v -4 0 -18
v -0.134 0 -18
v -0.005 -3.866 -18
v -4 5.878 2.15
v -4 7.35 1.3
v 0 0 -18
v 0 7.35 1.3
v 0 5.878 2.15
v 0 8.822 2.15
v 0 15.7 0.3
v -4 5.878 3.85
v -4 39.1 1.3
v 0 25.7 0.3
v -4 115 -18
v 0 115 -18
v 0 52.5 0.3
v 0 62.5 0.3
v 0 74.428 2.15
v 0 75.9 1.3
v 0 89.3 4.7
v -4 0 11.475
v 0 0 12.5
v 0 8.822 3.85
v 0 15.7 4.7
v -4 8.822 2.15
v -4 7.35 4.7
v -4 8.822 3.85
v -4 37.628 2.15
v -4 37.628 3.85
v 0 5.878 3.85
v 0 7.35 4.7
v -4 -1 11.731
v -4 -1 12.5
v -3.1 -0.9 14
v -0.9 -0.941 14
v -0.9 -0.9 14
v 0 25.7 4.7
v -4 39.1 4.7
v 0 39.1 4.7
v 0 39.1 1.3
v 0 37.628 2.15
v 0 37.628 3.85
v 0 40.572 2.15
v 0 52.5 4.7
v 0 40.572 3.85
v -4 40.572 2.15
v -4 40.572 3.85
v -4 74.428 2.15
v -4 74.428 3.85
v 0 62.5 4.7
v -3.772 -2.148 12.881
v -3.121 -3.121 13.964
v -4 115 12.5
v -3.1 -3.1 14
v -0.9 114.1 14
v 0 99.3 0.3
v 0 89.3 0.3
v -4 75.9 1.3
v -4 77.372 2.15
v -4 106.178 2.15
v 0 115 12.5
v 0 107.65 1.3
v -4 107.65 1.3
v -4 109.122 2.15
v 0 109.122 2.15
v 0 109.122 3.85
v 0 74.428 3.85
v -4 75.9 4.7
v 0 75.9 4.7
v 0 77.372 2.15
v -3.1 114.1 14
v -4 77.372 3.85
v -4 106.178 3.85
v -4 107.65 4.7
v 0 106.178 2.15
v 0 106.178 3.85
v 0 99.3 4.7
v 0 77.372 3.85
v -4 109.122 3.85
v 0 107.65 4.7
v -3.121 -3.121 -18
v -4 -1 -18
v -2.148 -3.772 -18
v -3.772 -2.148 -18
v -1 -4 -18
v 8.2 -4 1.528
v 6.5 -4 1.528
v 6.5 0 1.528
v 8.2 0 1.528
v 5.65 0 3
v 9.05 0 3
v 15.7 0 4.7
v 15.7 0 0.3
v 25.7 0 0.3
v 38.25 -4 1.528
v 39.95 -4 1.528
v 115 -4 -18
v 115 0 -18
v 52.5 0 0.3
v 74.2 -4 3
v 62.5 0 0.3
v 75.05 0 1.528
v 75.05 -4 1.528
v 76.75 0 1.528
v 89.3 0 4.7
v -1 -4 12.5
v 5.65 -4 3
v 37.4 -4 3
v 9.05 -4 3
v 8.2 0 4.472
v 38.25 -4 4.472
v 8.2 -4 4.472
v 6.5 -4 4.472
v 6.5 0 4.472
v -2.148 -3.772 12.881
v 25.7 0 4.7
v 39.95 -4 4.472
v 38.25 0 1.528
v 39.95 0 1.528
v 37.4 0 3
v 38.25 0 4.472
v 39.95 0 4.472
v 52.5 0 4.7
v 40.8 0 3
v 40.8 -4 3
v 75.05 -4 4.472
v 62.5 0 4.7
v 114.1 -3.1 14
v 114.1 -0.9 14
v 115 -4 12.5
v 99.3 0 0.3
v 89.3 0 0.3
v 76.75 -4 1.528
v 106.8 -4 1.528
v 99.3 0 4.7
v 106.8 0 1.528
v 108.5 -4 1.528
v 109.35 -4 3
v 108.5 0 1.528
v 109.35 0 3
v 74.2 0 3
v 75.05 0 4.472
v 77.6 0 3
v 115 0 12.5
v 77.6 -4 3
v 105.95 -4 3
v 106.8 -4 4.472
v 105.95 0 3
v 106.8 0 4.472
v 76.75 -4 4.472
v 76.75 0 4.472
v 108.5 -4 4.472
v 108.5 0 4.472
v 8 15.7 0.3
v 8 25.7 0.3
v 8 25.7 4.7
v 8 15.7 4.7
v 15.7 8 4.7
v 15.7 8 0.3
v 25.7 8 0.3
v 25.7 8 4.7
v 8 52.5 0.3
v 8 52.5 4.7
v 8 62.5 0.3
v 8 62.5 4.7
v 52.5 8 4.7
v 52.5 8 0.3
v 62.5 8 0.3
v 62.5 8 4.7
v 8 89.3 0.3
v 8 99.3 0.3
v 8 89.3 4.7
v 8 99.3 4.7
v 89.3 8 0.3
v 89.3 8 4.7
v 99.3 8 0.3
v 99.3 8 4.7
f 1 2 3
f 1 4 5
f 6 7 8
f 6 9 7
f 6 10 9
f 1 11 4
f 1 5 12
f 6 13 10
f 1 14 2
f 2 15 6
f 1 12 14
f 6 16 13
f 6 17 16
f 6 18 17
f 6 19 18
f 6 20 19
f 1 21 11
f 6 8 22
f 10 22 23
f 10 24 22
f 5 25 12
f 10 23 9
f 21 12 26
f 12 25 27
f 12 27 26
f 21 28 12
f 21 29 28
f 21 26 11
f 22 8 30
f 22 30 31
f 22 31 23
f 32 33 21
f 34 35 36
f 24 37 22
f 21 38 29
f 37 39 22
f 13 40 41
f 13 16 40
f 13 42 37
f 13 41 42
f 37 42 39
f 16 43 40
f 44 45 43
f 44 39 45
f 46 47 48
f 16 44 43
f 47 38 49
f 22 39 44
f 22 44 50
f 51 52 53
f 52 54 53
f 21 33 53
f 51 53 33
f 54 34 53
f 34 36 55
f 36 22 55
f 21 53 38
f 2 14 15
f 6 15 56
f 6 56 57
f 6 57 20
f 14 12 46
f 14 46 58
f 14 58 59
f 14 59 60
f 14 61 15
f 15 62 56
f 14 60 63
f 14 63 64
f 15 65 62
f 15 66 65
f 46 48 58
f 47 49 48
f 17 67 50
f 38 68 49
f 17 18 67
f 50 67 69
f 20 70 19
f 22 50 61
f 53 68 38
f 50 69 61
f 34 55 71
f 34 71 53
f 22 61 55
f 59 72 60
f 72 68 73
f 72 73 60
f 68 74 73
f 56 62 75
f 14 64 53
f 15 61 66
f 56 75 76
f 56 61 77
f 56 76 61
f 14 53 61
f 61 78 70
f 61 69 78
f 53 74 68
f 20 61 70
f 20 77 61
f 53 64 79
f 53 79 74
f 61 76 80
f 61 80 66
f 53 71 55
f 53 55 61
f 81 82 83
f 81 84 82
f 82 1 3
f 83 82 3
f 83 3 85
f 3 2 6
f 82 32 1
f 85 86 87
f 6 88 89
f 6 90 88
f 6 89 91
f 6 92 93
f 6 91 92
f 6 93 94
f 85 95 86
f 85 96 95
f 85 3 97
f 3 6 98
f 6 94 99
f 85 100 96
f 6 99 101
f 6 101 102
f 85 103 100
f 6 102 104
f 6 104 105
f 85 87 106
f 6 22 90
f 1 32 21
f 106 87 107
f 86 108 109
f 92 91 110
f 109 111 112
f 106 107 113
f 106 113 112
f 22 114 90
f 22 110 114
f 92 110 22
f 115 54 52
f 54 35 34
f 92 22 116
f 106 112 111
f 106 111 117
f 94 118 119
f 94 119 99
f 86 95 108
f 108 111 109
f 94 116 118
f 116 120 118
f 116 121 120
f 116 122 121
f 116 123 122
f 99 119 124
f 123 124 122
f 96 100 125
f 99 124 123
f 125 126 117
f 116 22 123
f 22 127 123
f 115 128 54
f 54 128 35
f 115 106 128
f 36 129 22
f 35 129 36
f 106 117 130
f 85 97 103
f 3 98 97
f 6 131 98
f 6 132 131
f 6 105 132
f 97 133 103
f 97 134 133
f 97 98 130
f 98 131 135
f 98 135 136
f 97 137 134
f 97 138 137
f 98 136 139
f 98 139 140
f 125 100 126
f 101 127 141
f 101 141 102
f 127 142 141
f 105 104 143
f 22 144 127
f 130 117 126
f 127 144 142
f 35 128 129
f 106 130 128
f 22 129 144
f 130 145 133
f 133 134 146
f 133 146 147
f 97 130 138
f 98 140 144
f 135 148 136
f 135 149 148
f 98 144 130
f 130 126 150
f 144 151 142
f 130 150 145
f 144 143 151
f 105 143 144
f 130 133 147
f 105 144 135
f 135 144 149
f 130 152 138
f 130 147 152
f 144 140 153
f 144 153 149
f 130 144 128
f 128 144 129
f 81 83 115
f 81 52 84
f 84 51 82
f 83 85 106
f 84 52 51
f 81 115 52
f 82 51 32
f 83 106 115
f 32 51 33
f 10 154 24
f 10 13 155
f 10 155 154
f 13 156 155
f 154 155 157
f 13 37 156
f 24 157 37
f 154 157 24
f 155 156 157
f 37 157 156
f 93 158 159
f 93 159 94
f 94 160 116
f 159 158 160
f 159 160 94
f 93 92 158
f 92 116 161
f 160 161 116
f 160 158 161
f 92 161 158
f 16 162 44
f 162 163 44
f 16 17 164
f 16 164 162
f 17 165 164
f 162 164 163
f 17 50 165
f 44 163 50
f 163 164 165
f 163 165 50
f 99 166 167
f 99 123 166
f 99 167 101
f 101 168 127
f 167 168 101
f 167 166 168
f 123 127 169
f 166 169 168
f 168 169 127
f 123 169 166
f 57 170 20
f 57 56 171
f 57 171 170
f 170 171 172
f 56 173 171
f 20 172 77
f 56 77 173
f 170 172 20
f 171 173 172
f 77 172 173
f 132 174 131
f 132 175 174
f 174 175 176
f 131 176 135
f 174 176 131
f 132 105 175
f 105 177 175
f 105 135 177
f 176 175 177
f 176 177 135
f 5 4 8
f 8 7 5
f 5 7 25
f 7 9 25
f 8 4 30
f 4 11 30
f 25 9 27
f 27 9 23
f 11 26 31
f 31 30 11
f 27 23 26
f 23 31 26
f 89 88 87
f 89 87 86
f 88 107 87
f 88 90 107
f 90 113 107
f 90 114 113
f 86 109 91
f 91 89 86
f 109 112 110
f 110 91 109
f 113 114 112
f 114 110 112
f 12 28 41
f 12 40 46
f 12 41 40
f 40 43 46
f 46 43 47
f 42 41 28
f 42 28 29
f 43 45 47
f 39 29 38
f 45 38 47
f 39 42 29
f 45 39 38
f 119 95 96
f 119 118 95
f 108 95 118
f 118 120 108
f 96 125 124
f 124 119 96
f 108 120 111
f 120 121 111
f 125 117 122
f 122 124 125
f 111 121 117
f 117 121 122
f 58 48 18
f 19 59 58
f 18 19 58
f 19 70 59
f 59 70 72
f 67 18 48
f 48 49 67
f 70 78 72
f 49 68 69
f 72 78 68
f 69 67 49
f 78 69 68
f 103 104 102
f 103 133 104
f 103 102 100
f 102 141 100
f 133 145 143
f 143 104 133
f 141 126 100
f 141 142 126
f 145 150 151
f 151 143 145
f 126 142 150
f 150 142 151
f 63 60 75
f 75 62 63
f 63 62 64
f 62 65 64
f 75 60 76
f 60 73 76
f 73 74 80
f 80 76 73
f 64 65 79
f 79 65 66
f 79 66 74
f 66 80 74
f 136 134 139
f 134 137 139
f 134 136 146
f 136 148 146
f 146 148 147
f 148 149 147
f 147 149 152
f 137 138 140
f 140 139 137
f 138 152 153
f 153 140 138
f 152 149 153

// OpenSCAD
// file: frame.scad
// ============================================================================
//  RIBBED FRAME HELPER — replaces a solid plate with border + grid ribs.
//  Same stiffness where it matters (bosses clamped flat), ~half the plastic.
// ============================================================================

rib_w    = 10;   // [mm] grid rib width
border_w = 10;   // [mm] perimeter border width

// Plan-view rounded rectangle prism — trims vertical edges to radius r.
// Inset polygon + offset(r) keeps the flat edges on x0/x1/y0/y1.
module rounded_outline(x0, y0, x1, y1, h, r = corner_r) {
    translate([0, 0, -0.05])
        linear_extrude(h + 0.1)
            offset(r = r)
                polygon([[x0 + r, y0 + r],
                         [x1 - r, y0 + r],
                         [x1 - r, y1 - r],
                         [x0 + r, y1 - r]]);
}

// Rounded box helper for external edges. Keep radii small to preserve fits.
module rounded_box(size, r = edge_break) {
    // 2D rounded footprint extruded to preserve exact outer dimensions.
    translate([0,0,-size[2]/2]) linear_extrude(size[2])
        offset(r=r) square([size[0]-2*r,size[1]-2*r],center=true);
}

// x0,y0,x1,y1 = plate extent; xs/ys = station coordinates the ribs run through
module rib_plate(x0, y0, x1, y1, xs, ys) {
    intersection() {
        union() {
        // border ring
        translate([(x0+x1)/2, y0+border_w/2, base_t/2]) rounded_box([x1-x0,border_w,base_t]);
        translate([(x0+x1)/2, y1-border_w/2, base_t/2]) rounded_box([x1-x0,border_w,base_t]);
        translate([x0+border_w/2, (y0+y1)/2, base_t/2]) rounded_box([border_w,y1-y0,base_t]);
        translate([x1-border_w/2, (y0+y1)/2, base_t/2]) rounded_box([border_w,y1-y0,base_t]);
        // ribs through each station row/column
        for (y = ys)
            translate([(x0+x1)/2, y, base_t/2])
                rounded_box([x1-x0, rib_w, base_t]);
        for (x = xs)
            translate([x, (y0+y1)/2, base_t/2])
                rounded_box([rib_w, y1-y0, base_t]);
        }
        rounded_outline(x0, y0, x1, y1, base_t);
    }
}

module pin_post(x, y) {
    translate([x, y, base_t - pin_embed]) {
        cylinder(d = pin_d, h = pin_embed + pin_len - chamfer_h);
        translate([0, 0, pin_embed + pin_len - chamfer_h])
            cylinder(d1 = pin_d, d2 = pin_d - 2 * chamfer_d, h = chamfer_h);
    }
}

module guide_boss(x, y) {
    translate([x, y, base_t])
        cylinder(d = boss_od, h = boss_h);
}

module guide_bores(x, y) {
    translate([x, y, base_t + boss_h - bush_seat_h])
        cylinder(d = bush_hole_d, h = bush_seat_h + 0.02);
    translate([x, y, -0.01])
        cylinder(d = bit_clear_d, h = base_t + boss_h + 0.02);
}
// file: params.scad
// ============================================================================
//  SHARED PARAMETERS — pegboard jig print set
//  10mm holes on a 50mm grid, 18mm plywood, first hole 25mm from each edge.
//  Include this file in every part so dimensions stay in sync.
// ============================================================================

pitch        = 50;    // [mm] grid spacing
hole_d       = 10;    // [mm] drilled hole / bit size (reference)
edge_offset  = 25;    // [mm] first hole centre from each edge
panel_t      = 18;    // [mm] plywood thickness (fence reach below z=0)

// Locating pins — drop into drilled holes. All pin parts print PINS-UP.
pin_d      = 9.8;     // snug in a 10mm hole (9.9 tighter, 9.5 looser)
pin_len    = 10;      // engagement depth
pin_embed  = 3;       // root embedded in the base
chamfer_h  = 1.2;
chamfer_d  = 0.7;

// Drill guides — 12mm OD / 10mm ID metal bush press fit
bush_hole_d  = 11.9;  // press-fit seat (11.7 tighter, 12.1 slip+glue)
bit_clear_d  = 10.4;  // 0.2mm/side clearance
bush_seat_h  = 8;
boss_od      = 24;
boss_h       = 8;

// Base plates
base_t       = 6;
margin       = boss_od / 2 + 6;   // plate margin around stations

// Fence joint — must match between plate notches and fence tabs
notch_d      = 8.4;
notch_w      = 12;
tab_w        = 10;
tab_t        = 4.4;
tab_z0       = 0.3;
tab_in       = 8;
tab_frac     = [0.18, 0.5, 0.82];
fence_t      = 4;
fence_top    = 14;
clamp_gap    = 25;
edge_margin  = 15;
clamp_hole_d = 6;

// Edge rounding — plan-view corner radius, helps high-speed printing
corner_r     = 6;      // [mm] on plates / rib frames
corner_r_s   = 3;      // [mm] on small parts (carriage, inserts)
edge_break   = 0.8;    // [mm] small chamfer on exposed vertical-part edges

// Fence→plate screws — horizontal M3 self-tappers through the fence
// wall into the plate edge band, in the solid gaps between notches.
// Shared by plate (pilot) and fence (through) so positions always match.
screw_d       = 3;      // [mm] M3
screw_clear   = 3.4;    // through-hole Ø in the fence wall
screw_pilot   = 2.4;    // pilot hole Ø into the plate edge
screw_depth   = 9.5;    // pilot depth — stays inside the 10mm border band
screw_z       = 3;      // hole centre height (mid plate thickness)
screw_min_gap = 10;     // smallest solid edge interval that takes a screw

// Solid intervals along a fence edge = reach minus the notch pockets.
// Returns centre positions for the screw holes (same on both parts).
function screw_stations(reach, tab_pos) =
    let(
        flat   = [for (c = tab_pos, e = [-notch_w / 2, notch_w / 2]) c + e],
        bounds = concat([0], flat, [reach]),
        pairs  = [for (i = [0 : 2 : len(bounds) - 2])
                      [bounds[i], bounds[i + 1]]]
    )
    [for (p = pairs) if (p[1] - p[0] >= screw_min_gap)
        (p[0] + p[1]) / 2];
// main file
// ============================================================================
//  STARTER 2x2 FENCE — L-bracket for the 115mm starter2_plate
//  Joint: tabs locate in the plate notches; M3 self-tappers through the
//  walls into the plate edge band clamp it (no glue needed).
//  PRINT: as modelled — wall bottom edges on the bed, USE A BRIM.
// ============================================================================
include <params.scad>
include <frame.scad>

seed_cols = 2;
seed_rows = 2;

span    = edge_offset + (max(seed_cols, seed_rows) - 1) * pitch; // 75
clamp_p = span + clamp_gap;
reach   = clamp_p + edge_margin;                                 // 115
tab_pos = [for (f = tab_frac) f * reach];
screw_pos = screw_stations(reach, tab_pos);

corner_r_f = 3;    // outer corner clip radius
chamfer_t  = 1.5;  // top edge chamfer — vertical
chamfer_i  = 0.9;  // top edge chamfer — horizontal inset
z_top      = panel_t + fence_top;                                // 32

// L footprint with the outer (-fence_t,-fence_t) corner clipped by an arc.
module fence_outline() {
    r = corner_r_f;
    polygon(concat(
        [[-fence_t, -fence_t + r],
         [-fence_t, reach],
         [0, reach],
         [0, 0],
         [reach, 0],
         [reach, -fence_t],
         [-fence_t + r, -fence_t]],
        [for (a = [247.5, 225, 202.5])
            [-fence_t + r + r * cos(a), -fence_t + r + r * sin(a)]]
    ));
}

module starter2_fence() {
    difference() {
        union() {
            intersection() {
                union() {
                    // wall A — chamfered top
                    hull() {
                        translate([-fence_t, -fence_t, -panel_t])
                            cube([fence_t, reach + fence_t,
                                  z_top - chamfer_t]);
                        translate([-fence_t + chamfer_i,
                                   -fence_t + chamfer_i,
                                   -panel_t + z_top - chamfer_t])
                            cube([fence_t - 2 * chamfer_i,
                                  reach + fence_t - 2 * chamfer_i,
                                  chamfer_t]);
                    }
                    // wall B — chamfered top
                    hull() {
                        translate([-fence_t, -fence_t, -panel_t])
                            cube([reach + fence_t, fence_t,
                                  z_top - chamfer_t]);
                        translate([-fence_t + chamfer_i,
                                   -fence_t + chamfer_i,
                                   -panel_t + z_top - chamfer_t])
                            cube([reach + fence_t - 2 * chamfer_i,
                                  fence_t - 2 * chamfer_i,
                                  chamfer_t]);
                    }
                }
                translate([0, 0, -panel_t - 0.1])
                    linear_extrude(z_top + 0.2)
                        fence_outline();
            }
            // tabs stay outside the outline clip — they must reach into
            // the plate region (x>0,y>0) to engage the notches
            for (c = tab_pos) {
                translate([-2, c - tab_w / 2, tab_z0])
                    cube([2 + tab_in, tab_w, tab_t]);
                translate([c - tab_w / 2, -2, tab_z0])
                    cube([tab_w, 2 + tab_in, tab_t]);
            }
        }
        // M3 through-holes — line up with the plate pilot holes
        for (sy = screw_pos) {
            translate([-fence_t - 0.6, sy, screw_z])
                rotate([0, 90, 0])
                    cylinder(d = screw_clear, h = fence_t + 1.2);
            translate([sy, -fence_t - 0.6, screw_z])
                rotate([-90, 0, 0])
                    cylinder(d = screw_clear, h = fence_t + 1.2);
        }
    }
}

starter2_fence();
